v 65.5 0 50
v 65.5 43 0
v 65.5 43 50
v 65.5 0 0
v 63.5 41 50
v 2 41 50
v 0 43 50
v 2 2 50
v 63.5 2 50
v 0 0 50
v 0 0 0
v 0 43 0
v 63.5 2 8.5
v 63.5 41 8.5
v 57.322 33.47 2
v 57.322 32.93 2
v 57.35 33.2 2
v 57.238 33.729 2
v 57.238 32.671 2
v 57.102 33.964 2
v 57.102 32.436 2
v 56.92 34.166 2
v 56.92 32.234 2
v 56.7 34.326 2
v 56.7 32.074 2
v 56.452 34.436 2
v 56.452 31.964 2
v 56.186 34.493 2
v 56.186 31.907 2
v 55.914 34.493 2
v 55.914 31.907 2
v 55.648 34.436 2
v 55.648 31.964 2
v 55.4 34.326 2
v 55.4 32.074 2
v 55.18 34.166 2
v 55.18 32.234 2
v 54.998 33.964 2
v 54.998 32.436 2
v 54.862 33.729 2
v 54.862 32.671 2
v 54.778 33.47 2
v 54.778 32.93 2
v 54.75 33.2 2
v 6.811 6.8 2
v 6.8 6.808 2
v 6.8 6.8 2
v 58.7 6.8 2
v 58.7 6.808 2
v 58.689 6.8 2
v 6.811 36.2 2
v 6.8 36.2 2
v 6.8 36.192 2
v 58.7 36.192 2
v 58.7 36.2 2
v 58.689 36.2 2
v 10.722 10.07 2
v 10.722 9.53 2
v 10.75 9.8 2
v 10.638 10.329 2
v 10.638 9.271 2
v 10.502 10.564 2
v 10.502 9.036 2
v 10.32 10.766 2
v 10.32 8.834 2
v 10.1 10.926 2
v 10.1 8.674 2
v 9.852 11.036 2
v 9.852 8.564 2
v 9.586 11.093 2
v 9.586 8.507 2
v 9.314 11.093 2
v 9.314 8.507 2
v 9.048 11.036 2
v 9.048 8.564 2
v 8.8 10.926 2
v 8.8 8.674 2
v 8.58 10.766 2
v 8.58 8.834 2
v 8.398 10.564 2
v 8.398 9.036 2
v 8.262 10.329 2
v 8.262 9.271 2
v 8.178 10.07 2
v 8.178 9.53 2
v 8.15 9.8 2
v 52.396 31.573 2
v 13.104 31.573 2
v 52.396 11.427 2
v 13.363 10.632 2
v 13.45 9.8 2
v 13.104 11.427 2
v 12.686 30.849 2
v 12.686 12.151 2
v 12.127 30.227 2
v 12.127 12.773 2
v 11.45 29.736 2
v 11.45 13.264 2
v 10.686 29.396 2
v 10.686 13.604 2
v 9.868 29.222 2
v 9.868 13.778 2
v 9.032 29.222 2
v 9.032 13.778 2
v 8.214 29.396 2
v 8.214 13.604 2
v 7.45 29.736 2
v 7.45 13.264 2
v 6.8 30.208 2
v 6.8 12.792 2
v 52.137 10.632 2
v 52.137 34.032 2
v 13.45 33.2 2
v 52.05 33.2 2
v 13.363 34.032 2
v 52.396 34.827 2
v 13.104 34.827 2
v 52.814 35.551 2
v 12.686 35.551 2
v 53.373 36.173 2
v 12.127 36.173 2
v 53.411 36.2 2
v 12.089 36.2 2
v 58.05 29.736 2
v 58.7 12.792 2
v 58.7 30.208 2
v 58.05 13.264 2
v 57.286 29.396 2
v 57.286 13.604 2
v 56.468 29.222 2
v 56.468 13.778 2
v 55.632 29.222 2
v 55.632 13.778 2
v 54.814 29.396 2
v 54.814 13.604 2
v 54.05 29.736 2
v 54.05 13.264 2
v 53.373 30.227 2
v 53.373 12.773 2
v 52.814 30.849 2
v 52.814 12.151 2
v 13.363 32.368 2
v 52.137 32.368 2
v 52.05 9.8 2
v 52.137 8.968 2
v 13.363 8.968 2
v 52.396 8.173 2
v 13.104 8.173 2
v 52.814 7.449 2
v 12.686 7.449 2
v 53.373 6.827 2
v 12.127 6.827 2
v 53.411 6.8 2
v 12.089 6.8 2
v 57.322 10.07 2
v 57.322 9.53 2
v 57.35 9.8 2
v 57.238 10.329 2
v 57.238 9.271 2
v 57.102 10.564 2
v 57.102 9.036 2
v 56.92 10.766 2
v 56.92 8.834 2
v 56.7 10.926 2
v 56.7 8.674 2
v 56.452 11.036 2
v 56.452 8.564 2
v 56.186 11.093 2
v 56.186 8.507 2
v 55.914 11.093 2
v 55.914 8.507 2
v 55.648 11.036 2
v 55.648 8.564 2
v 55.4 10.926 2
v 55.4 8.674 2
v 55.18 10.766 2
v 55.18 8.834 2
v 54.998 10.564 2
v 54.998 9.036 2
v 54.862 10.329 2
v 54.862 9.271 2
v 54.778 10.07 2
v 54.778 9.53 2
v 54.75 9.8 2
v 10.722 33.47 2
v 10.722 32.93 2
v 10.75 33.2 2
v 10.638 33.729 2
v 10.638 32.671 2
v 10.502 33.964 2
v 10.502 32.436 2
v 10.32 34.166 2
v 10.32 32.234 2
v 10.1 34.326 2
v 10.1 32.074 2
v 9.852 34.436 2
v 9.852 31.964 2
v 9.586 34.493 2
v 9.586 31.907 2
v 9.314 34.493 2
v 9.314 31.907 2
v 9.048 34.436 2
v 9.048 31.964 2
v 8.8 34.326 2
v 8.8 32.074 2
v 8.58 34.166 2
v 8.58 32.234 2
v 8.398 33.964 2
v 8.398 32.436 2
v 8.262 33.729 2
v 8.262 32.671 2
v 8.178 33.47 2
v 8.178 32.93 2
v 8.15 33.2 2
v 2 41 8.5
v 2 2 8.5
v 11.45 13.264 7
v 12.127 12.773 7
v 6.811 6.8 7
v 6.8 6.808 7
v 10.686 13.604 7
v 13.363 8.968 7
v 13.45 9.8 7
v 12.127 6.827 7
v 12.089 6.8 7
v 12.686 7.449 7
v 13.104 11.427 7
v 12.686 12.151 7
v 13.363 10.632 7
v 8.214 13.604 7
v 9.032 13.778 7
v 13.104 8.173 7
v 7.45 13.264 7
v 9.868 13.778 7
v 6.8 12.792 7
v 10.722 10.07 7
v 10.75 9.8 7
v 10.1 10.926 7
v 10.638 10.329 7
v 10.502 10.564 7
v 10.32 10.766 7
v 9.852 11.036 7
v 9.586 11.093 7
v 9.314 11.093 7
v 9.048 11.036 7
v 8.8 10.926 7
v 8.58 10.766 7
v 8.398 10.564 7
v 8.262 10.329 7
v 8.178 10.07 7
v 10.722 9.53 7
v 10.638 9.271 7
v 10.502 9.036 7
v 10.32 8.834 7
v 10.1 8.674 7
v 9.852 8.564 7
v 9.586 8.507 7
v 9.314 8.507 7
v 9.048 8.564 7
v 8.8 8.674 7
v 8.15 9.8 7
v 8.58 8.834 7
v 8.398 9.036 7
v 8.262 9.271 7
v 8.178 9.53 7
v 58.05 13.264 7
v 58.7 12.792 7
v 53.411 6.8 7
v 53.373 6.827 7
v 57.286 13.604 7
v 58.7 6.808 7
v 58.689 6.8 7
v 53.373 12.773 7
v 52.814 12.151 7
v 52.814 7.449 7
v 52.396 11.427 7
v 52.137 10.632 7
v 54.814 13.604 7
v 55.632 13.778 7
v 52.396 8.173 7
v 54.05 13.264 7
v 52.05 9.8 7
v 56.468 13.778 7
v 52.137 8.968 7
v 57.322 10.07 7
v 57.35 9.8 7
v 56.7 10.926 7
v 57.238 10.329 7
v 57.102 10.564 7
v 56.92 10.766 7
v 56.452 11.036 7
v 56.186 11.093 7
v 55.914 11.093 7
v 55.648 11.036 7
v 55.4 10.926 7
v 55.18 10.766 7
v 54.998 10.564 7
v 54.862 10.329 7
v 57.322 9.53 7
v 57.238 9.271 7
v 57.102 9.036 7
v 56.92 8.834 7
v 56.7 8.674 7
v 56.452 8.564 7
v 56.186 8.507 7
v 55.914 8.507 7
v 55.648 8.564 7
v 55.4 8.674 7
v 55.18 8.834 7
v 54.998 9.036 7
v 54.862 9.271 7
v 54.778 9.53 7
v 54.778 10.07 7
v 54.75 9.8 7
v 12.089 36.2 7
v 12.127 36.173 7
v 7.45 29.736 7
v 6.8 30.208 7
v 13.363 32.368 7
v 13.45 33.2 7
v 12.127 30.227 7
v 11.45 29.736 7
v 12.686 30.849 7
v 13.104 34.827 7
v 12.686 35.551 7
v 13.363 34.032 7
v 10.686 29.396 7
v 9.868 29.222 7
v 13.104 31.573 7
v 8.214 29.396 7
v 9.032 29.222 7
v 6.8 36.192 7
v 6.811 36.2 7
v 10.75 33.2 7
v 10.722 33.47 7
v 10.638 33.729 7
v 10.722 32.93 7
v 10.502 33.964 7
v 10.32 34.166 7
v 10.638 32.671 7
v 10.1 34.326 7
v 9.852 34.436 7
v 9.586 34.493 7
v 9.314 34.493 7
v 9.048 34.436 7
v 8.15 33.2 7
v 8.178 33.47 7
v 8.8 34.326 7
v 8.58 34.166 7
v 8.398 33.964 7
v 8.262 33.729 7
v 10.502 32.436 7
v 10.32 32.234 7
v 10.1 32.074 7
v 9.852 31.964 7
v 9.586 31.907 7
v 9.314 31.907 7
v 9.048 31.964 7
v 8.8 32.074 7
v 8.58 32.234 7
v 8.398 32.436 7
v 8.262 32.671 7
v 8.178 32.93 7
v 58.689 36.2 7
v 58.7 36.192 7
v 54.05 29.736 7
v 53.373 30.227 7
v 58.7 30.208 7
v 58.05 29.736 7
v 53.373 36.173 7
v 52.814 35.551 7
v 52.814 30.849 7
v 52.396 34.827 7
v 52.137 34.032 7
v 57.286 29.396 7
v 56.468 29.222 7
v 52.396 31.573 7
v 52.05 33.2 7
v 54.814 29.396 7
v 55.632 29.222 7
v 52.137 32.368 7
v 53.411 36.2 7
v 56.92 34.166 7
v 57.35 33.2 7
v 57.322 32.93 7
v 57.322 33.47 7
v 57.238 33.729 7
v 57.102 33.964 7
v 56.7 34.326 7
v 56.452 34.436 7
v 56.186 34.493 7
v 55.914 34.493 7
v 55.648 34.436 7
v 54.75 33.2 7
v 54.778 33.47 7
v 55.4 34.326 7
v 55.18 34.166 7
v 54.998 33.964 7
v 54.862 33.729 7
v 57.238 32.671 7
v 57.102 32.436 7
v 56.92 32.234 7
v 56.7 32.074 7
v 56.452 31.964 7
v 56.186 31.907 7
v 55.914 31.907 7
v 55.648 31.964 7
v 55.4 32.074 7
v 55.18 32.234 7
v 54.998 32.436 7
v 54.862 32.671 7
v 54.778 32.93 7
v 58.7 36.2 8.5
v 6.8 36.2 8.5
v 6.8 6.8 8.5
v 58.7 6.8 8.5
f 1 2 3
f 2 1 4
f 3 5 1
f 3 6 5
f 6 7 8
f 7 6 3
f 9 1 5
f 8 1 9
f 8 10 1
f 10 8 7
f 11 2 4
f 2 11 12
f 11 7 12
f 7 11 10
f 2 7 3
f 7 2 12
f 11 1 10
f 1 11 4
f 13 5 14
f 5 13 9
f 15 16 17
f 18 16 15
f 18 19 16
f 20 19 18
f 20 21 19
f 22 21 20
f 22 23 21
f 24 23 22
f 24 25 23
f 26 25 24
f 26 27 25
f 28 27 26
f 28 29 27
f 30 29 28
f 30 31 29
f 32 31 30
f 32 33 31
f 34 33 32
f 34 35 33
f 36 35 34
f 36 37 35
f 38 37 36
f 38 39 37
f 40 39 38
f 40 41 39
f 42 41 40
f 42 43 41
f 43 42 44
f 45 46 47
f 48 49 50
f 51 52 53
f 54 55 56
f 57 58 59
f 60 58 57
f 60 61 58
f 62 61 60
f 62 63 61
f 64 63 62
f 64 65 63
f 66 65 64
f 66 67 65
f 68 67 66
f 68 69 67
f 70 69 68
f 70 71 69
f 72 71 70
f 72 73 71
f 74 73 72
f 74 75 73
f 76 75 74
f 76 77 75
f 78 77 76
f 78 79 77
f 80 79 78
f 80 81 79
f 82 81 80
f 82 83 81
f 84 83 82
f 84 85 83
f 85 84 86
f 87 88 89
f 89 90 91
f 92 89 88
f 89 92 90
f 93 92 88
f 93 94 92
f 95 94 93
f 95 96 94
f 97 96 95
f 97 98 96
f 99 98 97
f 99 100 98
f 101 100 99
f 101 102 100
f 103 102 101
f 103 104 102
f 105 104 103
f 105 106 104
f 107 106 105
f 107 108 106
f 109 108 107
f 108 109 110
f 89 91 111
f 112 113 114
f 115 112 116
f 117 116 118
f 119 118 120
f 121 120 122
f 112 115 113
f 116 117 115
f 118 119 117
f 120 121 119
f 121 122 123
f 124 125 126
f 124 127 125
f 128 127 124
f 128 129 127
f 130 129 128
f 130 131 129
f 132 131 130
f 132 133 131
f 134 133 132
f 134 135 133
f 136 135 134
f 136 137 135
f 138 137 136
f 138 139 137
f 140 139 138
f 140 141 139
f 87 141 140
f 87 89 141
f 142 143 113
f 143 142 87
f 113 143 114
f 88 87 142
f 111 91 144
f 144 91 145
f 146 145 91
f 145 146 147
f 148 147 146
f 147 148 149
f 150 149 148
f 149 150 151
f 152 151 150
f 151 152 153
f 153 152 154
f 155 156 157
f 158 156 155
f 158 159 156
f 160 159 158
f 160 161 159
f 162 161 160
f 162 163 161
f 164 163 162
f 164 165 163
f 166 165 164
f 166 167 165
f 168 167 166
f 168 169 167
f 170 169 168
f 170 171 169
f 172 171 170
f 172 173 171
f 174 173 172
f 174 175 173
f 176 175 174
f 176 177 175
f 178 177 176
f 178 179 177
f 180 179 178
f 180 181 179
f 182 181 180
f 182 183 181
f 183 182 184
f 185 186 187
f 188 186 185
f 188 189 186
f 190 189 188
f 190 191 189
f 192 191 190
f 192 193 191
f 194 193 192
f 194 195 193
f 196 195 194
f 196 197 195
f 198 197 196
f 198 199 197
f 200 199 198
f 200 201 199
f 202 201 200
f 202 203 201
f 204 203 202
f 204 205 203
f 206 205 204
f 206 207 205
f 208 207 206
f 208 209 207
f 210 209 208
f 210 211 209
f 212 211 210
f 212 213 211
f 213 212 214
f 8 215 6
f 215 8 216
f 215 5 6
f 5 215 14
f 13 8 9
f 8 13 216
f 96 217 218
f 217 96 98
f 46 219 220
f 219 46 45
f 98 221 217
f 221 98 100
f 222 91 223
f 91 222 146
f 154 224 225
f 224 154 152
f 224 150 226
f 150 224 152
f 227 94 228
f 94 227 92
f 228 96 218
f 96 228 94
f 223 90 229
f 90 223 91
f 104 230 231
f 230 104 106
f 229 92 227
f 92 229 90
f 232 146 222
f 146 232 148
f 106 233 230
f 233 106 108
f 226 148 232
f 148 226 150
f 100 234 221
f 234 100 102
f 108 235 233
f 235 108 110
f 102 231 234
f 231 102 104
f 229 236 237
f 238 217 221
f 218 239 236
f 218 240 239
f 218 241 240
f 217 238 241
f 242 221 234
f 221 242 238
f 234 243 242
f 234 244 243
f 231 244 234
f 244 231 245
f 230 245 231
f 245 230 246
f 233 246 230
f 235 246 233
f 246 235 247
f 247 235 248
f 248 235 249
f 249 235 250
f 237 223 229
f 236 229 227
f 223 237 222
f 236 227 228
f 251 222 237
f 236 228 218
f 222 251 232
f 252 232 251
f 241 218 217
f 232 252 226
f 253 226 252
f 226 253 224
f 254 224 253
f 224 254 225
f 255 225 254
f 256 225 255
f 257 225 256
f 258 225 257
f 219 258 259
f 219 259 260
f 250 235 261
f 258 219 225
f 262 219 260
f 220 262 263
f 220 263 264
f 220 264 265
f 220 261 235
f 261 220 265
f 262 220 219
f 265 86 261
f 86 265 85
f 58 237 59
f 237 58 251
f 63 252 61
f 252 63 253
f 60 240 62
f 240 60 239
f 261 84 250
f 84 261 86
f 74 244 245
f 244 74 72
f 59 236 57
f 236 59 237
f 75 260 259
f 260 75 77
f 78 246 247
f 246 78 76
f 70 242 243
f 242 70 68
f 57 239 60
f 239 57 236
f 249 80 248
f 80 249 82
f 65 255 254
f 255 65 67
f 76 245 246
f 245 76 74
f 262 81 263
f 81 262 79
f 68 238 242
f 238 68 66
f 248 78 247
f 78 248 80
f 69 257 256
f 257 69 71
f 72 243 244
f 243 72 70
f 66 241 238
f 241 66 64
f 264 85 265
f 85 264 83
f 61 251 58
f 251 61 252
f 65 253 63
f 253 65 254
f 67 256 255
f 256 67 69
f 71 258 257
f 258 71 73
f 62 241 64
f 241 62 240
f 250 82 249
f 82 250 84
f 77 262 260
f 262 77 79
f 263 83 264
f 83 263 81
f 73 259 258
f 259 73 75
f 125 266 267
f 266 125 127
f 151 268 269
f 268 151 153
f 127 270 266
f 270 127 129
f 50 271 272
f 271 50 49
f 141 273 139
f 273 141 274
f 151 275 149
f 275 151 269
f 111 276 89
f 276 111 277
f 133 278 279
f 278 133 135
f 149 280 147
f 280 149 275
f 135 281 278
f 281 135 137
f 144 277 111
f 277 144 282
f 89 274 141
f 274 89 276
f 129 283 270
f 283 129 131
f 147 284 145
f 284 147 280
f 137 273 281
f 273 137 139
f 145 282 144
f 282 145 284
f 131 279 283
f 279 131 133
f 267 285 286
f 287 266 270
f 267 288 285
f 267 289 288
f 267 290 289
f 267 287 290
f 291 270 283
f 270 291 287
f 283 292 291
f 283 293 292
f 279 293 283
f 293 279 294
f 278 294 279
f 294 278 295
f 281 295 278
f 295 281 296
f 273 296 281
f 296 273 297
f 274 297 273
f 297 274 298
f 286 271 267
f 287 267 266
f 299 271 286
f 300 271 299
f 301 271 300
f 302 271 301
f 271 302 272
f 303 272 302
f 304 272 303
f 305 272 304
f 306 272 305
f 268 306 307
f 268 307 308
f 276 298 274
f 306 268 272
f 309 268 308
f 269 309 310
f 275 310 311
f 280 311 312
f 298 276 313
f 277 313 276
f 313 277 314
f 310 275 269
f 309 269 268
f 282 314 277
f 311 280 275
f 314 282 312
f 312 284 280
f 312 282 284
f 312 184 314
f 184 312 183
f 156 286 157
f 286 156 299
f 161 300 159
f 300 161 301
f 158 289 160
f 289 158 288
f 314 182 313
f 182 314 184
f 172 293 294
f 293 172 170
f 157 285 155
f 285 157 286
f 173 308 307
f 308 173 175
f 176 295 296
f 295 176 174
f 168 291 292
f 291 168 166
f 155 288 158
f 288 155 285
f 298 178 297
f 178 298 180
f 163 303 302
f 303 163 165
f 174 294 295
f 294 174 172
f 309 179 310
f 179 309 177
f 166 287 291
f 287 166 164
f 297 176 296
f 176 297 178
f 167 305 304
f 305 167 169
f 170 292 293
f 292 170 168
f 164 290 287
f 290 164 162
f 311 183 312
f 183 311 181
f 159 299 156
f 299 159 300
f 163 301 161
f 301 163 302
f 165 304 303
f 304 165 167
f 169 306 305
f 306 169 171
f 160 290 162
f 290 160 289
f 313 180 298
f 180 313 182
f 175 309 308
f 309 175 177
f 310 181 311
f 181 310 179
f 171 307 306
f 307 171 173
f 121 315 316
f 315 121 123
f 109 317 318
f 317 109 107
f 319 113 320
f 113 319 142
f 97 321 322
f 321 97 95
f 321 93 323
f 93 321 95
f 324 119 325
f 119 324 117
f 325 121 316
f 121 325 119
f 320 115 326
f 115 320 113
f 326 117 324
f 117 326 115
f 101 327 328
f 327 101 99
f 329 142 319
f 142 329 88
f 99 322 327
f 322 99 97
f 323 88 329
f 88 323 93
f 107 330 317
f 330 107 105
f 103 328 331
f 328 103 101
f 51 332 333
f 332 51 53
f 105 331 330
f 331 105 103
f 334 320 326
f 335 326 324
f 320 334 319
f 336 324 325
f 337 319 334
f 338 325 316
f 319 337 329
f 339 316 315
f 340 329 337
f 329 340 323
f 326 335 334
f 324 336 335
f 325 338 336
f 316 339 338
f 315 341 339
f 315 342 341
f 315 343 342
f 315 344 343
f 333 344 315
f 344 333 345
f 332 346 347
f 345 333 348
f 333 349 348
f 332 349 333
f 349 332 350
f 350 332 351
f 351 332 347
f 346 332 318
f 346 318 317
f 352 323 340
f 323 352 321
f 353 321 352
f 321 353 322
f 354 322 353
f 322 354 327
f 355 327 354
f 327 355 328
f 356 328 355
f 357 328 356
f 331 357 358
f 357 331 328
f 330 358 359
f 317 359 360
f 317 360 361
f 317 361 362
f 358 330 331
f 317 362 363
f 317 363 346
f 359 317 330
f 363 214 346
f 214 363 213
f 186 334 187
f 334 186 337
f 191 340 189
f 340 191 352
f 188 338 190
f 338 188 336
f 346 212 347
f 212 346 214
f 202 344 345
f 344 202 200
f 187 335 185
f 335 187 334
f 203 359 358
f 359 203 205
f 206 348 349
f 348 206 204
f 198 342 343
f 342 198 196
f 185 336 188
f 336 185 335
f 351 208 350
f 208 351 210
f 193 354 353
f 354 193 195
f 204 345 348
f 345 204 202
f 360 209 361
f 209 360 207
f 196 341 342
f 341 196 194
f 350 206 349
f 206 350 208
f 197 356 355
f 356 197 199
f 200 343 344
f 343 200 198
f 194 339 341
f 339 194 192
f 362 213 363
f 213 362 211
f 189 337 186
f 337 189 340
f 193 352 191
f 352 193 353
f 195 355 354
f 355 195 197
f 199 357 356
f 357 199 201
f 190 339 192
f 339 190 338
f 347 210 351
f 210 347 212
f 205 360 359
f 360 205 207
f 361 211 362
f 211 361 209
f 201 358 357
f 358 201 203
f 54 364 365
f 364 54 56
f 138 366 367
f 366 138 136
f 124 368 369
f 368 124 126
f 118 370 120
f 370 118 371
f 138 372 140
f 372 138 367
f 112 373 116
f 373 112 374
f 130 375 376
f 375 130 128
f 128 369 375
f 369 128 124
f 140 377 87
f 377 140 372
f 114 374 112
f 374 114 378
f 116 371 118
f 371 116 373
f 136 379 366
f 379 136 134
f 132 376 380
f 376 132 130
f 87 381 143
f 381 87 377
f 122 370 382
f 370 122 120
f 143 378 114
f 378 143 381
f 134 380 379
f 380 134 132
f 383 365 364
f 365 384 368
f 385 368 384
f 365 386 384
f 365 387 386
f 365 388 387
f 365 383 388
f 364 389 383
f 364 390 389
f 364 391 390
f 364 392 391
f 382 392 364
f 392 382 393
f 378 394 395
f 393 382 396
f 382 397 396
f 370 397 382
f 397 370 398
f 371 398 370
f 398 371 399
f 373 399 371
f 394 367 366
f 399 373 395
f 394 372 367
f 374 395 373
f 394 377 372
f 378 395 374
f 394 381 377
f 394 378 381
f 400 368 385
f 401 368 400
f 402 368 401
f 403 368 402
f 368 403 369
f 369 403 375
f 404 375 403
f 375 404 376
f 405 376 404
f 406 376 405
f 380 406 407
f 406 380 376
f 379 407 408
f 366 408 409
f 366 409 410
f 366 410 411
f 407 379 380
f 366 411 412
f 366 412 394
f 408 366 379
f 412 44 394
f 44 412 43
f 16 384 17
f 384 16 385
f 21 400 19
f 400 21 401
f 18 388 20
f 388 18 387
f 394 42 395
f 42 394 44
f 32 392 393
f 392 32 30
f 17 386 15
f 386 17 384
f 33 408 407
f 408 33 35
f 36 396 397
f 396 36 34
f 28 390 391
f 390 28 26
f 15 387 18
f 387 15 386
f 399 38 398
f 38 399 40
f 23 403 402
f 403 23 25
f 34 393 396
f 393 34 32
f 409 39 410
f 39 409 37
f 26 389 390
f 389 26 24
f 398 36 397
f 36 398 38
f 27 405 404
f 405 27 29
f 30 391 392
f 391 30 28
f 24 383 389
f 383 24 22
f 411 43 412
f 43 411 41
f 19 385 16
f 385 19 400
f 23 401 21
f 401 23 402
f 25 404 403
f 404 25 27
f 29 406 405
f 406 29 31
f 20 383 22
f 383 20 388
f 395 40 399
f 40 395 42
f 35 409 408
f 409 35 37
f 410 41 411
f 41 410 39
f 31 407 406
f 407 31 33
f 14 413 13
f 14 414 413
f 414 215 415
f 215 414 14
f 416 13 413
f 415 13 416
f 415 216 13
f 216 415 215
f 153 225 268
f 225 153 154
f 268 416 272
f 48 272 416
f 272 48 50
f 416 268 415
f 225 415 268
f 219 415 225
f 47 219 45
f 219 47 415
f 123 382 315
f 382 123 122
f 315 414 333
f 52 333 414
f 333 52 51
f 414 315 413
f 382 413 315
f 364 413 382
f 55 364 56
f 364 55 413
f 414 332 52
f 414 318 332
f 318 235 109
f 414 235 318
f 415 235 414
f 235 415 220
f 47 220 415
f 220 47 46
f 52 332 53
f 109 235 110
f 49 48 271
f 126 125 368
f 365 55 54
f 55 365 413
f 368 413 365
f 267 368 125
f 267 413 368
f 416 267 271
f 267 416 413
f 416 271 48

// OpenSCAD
$fn=30;

pcbLength=51.5;
pcbWidth=29;
pcbHeight=1.5;

deltaHoleL=(49.5+43.7)/2;
deltaHoleW=(26.4+20.4)/2;
holderWidth=8;
holderHeight=7;
holderHole=2.6;

thickness=2;
padding=5;

length=pcbLength+padding*2+thickness*2;
width=pcbWidth+padding*2+thickness*2;
height=50;

difference() {
  cube([length, width, height]);
  translate([thickness, thickness, thickness]) cube([length-thickness*2, width-thickness*2, height]);
}

translate([0,0,0]) cube([length,thickness+padding-0.2,holderHeight+pcbHeight]);
translate([0,width-thickness-padding+0.2,0]) cube([length,thickness+padding-0.2,holderHeight+pcbHeight]);
translate([0,0,0]) cube([thickness+padding-0.2,width,holderHeight+pcbHeight]);
translate([length-thickness-padding+0.2,0,0]) cube([thickness+padding-0.2,width,holderHeight+pcbHeight]);

translate([length/2-deltaHoleL/2, width/2-deltaHoleW/2,0]) holder();
translate([length/2+deltaHoleL/2, width/2-deltaHoleW/2,0]) holder();
translate([length/2-deltaHoleL/2, width/2+deltaHoleW/2,0]) holder();
translate([length/2+deltaHoleL/2, width/2+deltaHoleW/2,0]) holder();

module holder() {
  difference() {
    cylinder(d=holderWidth, h=holderHeight);
    translate([0,0,thickness]) cylinder(d=holderHole, h=holderHeight);
  }
}
